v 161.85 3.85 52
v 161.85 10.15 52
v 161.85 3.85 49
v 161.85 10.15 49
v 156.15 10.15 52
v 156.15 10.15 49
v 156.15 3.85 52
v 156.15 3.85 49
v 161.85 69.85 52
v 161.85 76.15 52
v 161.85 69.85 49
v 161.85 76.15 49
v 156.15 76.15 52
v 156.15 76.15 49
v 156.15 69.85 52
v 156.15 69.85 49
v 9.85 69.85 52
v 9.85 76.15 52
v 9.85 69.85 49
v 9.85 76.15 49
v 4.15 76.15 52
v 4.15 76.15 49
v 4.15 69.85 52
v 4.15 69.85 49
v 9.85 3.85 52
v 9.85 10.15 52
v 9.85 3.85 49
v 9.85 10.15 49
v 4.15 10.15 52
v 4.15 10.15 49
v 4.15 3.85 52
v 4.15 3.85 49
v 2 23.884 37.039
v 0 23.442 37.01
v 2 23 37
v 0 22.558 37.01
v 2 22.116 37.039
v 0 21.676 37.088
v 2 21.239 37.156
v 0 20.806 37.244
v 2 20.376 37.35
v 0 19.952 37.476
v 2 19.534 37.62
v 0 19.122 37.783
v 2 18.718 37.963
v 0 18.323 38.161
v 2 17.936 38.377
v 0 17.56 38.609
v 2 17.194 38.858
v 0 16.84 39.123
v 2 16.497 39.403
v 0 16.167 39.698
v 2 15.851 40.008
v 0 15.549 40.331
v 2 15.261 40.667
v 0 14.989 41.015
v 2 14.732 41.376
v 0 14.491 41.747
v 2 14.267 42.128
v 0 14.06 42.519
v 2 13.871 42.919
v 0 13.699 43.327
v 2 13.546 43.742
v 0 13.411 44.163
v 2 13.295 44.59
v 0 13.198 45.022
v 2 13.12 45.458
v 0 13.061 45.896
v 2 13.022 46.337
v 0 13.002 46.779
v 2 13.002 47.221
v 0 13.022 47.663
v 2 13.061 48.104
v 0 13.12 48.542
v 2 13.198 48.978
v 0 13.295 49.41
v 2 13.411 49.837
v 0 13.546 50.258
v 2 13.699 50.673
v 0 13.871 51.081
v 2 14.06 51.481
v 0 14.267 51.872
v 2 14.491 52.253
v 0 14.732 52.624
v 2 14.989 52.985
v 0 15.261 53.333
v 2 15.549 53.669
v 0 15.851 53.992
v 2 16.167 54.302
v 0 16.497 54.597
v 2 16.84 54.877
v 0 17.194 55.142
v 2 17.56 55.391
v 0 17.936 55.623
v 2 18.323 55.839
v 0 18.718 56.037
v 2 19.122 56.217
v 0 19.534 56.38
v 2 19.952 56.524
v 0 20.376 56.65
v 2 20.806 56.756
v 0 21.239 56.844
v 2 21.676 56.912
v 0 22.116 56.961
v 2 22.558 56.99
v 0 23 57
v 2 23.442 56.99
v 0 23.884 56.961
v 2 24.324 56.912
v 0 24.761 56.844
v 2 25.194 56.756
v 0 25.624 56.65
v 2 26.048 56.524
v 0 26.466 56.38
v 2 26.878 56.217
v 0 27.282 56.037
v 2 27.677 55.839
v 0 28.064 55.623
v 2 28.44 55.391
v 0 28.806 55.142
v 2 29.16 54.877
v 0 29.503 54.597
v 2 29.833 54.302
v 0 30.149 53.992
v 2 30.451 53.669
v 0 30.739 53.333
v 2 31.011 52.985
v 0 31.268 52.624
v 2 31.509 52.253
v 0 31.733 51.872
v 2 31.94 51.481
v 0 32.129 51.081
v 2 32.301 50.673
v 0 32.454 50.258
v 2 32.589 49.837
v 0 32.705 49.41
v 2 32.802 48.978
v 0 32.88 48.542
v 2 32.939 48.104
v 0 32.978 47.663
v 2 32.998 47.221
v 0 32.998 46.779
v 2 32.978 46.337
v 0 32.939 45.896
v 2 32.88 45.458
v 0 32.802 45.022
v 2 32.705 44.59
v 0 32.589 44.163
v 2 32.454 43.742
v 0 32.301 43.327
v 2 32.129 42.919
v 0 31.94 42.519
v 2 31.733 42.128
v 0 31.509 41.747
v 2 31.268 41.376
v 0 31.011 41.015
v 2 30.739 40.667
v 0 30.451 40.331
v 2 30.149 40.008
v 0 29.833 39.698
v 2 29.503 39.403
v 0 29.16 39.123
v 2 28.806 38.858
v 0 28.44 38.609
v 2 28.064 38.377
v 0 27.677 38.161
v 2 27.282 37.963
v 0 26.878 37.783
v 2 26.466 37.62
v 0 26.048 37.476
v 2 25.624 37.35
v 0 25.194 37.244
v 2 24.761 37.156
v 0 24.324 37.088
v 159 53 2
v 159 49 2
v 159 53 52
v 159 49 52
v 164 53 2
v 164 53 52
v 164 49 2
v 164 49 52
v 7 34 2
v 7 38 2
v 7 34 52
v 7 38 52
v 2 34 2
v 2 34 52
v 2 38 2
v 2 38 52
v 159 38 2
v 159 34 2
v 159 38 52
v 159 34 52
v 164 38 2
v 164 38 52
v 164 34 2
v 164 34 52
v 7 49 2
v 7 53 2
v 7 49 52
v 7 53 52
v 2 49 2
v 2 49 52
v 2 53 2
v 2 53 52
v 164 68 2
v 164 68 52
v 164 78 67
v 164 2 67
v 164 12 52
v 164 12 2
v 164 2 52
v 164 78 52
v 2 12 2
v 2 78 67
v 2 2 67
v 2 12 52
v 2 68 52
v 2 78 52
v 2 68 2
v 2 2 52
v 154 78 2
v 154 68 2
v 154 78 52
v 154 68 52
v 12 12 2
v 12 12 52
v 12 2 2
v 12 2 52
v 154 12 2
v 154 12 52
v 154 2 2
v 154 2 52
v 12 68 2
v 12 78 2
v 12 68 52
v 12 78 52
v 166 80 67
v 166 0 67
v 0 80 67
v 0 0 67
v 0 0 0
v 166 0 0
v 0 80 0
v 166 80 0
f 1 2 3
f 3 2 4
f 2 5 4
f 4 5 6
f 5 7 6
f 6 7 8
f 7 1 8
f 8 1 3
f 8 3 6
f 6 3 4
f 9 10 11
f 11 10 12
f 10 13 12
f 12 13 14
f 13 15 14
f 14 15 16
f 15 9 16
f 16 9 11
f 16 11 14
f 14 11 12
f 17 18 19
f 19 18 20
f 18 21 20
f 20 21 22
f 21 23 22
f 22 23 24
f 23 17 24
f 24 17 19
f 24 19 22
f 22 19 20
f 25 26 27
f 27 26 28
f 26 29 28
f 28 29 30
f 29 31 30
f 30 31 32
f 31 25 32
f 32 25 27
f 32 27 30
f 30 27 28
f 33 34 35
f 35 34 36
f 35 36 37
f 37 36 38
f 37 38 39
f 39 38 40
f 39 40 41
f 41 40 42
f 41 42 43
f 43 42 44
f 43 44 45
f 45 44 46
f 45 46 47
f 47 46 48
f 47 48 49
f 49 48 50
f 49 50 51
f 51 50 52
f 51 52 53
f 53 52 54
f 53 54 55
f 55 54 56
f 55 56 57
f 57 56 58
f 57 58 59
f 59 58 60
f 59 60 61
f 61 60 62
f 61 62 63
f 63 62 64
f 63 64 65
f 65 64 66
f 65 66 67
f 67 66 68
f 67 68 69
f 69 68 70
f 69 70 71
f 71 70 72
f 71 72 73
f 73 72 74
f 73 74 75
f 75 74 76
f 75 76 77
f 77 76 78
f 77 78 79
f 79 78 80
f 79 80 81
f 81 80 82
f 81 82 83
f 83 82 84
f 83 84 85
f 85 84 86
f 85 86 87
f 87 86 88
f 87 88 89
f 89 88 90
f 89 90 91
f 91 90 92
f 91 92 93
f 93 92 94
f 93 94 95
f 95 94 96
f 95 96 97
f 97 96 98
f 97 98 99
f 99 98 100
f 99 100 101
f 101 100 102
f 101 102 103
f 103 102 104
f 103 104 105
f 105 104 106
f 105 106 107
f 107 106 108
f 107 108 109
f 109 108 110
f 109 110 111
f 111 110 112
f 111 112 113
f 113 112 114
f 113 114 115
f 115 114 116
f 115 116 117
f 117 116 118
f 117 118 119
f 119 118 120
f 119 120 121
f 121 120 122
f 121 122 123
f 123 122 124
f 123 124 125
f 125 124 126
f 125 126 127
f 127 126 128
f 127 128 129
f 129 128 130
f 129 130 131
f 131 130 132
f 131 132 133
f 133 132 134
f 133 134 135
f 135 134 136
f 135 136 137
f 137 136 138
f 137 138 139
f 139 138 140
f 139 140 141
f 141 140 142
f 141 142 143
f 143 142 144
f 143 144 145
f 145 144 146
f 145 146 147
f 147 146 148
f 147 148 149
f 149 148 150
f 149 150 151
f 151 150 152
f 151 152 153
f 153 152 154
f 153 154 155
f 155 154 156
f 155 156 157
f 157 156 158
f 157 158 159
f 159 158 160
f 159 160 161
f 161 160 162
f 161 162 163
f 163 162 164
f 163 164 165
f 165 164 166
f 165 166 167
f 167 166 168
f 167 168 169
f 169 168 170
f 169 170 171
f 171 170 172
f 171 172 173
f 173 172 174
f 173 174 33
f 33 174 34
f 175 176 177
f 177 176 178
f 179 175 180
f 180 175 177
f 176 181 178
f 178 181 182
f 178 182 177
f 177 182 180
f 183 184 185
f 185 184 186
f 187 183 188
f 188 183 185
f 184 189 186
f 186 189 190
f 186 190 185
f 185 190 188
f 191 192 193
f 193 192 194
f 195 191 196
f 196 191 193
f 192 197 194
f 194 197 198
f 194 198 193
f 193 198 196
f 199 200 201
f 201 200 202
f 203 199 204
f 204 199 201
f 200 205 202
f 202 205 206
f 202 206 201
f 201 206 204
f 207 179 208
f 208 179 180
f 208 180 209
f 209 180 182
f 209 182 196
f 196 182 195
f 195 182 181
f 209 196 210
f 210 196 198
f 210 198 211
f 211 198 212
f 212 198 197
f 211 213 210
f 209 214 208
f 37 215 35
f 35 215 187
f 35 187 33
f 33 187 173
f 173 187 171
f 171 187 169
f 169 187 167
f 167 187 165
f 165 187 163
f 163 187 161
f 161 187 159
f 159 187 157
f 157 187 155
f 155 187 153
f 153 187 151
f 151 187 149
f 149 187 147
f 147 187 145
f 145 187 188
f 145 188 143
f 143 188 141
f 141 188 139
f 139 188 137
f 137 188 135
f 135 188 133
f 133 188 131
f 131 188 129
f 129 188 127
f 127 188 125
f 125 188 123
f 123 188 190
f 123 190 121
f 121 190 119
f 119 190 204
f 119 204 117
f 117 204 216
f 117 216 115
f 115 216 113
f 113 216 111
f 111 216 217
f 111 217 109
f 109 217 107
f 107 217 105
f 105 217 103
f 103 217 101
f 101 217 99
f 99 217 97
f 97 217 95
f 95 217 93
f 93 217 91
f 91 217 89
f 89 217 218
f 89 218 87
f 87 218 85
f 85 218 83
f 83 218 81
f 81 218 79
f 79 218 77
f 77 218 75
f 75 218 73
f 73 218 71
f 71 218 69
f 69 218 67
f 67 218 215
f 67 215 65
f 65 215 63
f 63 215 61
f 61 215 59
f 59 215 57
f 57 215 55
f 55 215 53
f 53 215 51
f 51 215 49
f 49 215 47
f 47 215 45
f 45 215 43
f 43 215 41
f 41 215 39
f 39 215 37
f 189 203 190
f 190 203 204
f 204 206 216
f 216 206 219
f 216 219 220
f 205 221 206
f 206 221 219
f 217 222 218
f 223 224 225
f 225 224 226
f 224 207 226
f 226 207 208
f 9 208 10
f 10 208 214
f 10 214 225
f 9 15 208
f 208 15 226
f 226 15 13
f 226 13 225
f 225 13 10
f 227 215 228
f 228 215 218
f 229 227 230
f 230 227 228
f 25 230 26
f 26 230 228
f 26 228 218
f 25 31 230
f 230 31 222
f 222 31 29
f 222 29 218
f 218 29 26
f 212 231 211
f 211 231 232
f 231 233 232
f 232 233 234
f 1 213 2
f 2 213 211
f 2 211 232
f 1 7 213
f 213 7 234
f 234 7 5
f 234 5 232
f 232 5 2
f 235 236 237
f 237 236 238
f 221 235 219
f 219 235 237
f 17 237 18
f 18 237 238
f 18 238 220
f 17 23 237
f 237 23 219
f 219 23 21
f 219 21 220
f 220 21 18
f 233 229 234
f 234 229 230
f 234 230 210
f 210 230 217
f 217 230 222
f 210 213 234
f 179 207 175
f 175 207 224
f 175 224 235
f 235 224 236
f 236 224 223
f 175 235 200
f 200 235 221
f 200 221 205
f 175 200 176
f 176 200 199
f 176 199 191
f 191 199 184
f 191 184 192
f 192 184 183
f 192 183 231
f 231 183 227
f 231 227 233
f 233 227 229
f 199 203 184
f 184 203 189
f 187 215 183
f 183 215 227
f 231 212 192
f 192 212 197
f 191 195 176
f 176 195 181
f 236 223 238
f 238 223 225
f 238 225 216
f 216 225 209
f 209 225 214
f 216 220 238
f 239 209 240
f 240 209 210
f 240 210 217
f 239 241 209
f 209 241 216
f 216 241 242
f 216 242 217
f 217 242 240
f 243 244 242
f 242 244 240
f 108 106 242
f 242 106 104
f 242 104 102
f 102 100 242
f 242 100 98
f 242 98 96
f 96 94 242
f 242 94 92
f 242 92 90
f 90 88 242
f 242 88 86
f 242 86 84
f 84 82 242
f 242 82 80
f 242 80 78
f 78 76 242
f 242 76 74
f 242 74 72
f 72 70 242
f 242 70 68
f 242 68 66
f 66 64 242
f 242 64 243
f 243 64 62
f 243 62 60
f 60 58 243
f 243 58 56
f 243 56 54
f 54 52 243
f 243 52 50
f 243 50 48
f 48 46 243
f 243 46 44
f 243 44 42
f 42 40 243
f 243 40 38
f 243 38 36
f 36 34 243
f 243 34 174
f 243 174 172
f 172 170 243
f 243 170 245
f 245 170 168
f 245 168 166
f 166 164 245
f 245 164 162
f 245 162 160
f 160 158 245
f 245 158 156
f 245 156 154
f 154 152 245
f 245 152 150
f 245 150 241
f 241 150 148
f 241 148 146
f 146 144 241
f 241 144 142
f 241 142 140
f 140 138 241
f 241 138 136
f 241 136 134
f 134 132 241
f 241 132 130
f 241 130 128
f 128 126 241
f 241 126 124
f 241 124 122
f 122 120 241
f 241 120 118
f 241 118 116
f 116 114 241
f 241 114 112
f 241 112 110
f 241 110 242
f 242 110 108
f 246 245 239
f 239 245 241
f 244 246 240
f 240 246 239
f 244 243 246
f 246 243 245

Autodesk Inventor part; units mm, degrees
ref_plane "YZ Plane" through (0, 0, 0) normal (1, 0, 0) x (0, 1, 0)
ref_plane "XZ Plane" through (0, 0, 0) normal (0, 1, 0) x (-1, 0, 0)
ref_plane "XY Plane" through (0, 0, 0) normal (0, 0, 1) x (1, 0, 0)
sketch "Skizze1" plane through (0, 0, 0) normal (0, 0, 1) x (1, 0, 0)
  line L0 (0, 0) -> (166, 0)
  line L1 (166, 0) -> (166, 80)
  line L2 (166, 80) -> (0, 80)
  line L3 (0, 80) -> (0, 0)
  dimension "d0" = 80
  dimension "d1" = 166
extrude "Extrusion1" add sketch "Skizze1" along normal blind 2
sketch "Skizze2" plane through (0, 0, 2) normal (0, 0, 1) x (1, 0, 0)
  line L0 (0, 80) -> (0, 0) projected
  line L1 (166, 0) -> (166, 80) projected
  line L2 (0, 0) -> (166, 0)
  line L3 (166, 0) -> (166, 80)
  line L4 (166, 80) -> (0, 80)
  line L5 (0, 80) -> (0, 0)
  line L6 (2, 78) -> (164, 78)
  line L7 (164, 78) -> (164, 2)
  line L8 (164, 2) -> (2, 2)
  line L9 (2, 2) -> (2, 78)
  dimension "d4" = 2
  dimension "d6" = 2
  dimension "d7" = 2
  dimension "d8" = 2
extrude "Extrusion2" add sketch "Skizze2" along normal blind 65
sketch "Skizze4" plane through (0, 0, 2) normal (0, 0, 1) x (1, 0, 0)
  line L0 (2, 2) -> (2, 78) projected
  line L1 (164, 2) -> (2, 2) projected
  line L2 (2, 78) -> (164, 78)
  line L3 (164, 78) -> (164, 2)
  line L4 (164, 2) -> (2, 2)
  line L5 (2, 2) -> (2, 78)
  line L6 (2, 68) -> (12, 68)
  line L7 (12, 68) -> (12, 78)
  line L8 (12, 78) -> (2, 78)
  line L9 (2, 78) -> (2, 68)
  line L10 (2, 2) -> (12, 2)
  line L11 (12, 2) -> (12, 12)
  line L12 (12, 12) -> (2, 12)
  line L13 (2, 12) -> (2, 2)
  line L14 (164, 78) -> (164, 2) projected
  line L15 (2, 78) -> (164, 78) projected
  line L16 (164, 68) -> (154, 68)
  line L17 (154, 68) -> (154, 78)
  line L18 (154, 78) -> (164, 78)
  line L19 (164, 78) -> (164, 68)
  line L20 (164, 2) -> (154, 2)
  line L21 (154, 2) -> (154, 12)
  line L22 (154, 12) -> (164, 12)
  line L23 (164, 12) -> (164, 2)
  point P0 (0, 0)
  point P1 (164, 12)
  point P2 (12, 2)
  point P3 (2, 68)
  dimension "d20" = 10
  dimension "d21" = 10
  dimension "d22" = 10
  dimension "d23" = 10
  dimension "d41" = 10
  dimension "d55" = 10
extrude "Extrusion3" add sketch "Skizze4" along normal blind 50 contours L0 L12 L11 L1 | L0 L2 L7 L6 | L21 L22 L3 L1 | L2 L3 L16 L17
sketch "Skizze5" plane through (0, 0, 2) normal (0, 0, 1) x (1, 0, 0)
  line L0 (2, 78) -> (164, 78) projected
  line L1 (2, 2) -> (2, 78) projected
  line L2 (2, 53) -> (7, 53)
  line L3 (7, 53) -> (7, 49)
  line L4 (7, 49) -> (2, 49)
  line L5 (2, 49) -> (2, 53)
  line L6 (2, 38) -> (7, 38)
  line L7 (7, 38) -> (7, 34)
  line L8 (7, 34) -> (2, 34)
  line L9 (2, 34) -> (2, 38)
  line L10 (164, 49) -> (159, 49)
  line L11 (159, 49) -> (159, 53)
  line L12 (159, 53) -> (164, 53)
  line L13 (164, 53) -> (164, 49)
  line L14 (164, 78) -> (164, 2) projected
  line L15 (164, 34) -> (159, 34)
  line L16 (159, 34) -> (159, 38)
  line L17 (159, 38) -> (164, 38)
  line L18 (164, 38) -> (164, 34)
  point P0 (0, 0)
  point P1 (2, 34)
  point P2 (2, 49)
  dimension "d30" = 11
  dimension "d31" = 4
  dimension "d32" = 4
  dimension "d33" = 5
  dimension "d34" = 25
  dimension "d37" = 5
  dimension "d38" = 0
  dimension "d58" = 25
  dimension "d59" = 4
  dimension "d60" = 11
extrude "Extrusion4" add sketch "Skizze5" along normal blind 50
sketch "Skizze3" plane through (0, 0, 0) normal (-1, 0, 0) x (0, 0, 1)
  line L0 (0, 80) -> (67, 80) projected
  line L1 (52, 12) -> (2, 12) projected
  line L2 (2, 34) -> (52, 34) projected
  line L3 (2, 34) -> (2, 12) projected
  point P0 (0, 0)
  point P1 (47, 23)
  point P2 (67, 12)
  point P3 (67, 34)
  dimension "d52" = 11
  dimension "d53" = 11
  dimension "d54" = 45
hole "Bohrung1" at (0, 23, 47) direction (1, 0, 0) diameter 20 depth 8 tip angle 118
sketch "Skizze6" plane through (0, 0, 52) normal (0, 0, 1) x (1, 0, 0)
  line L0 (4.15, 76.15) -> (9.85, 76.15)
  line L1 (9.85, 76.15) -> (9.85, 69.85)
  line L2 (9.85, 69.85) -> (4.15, 69.85)
  line L3 (4.15, 69.85) -> (4.15, 76.15)
  line L4 (2, 2) -> (2, 78) projected
  line L5 (2, 68) -> (12, 68) projected
  line L6 (4.15, 10.15) -> (9.85, 10.15)
  line L7 (9.85, 10.15) -> (9.85, 3.85)
  line L8 (9.85, 3.85) -> (4.15, 3.85)
  line L9 (4.15, 3.85) -> (4.15, 10.15)
  line L10 (12, 12) -> (2, 12) projected
  line L11 (156.15, 76.15) -> (161.85, 76.15)
  line L12 (161.85, 76.15) -> (161.85, 69.85)
  line L13 (161.85, 69.85) -> (156.15, 69.85)
  line L14 (156.15, 69.85) -> (156.15, 76.15)
  line L15 (154, 78) -> (154, 68) projected
  line L16 (156.15, 10.15) -> (161.85, 10.15)
  line L17 (161.85, 10.15) -> (161.85, 3.85)
  line L18 (161.85, 3.85) -> (156.15, 3.85)
  line L19 (156.15, 3.85) -> (156.15, 10.15)
  line L20 (2, 78) -> (164, 78) projected
  point P0 (0, 0)
  dimension "d42" = 5.7
  dimension "d43" = 6.3
  dimension "d44" = 2.15
  dimension "d45" = 1.85
  dimension "d46" = 6.3
  dimension "d47" = 1.85
  dimension "d48" = 5.7
  dimension "d49" = 2.15
  dimension "d56" = 1.85
  dimension "d57" = 6.3
extrude "Extrusion5" cut sketch "Skizze6" against normal blind 3
properties part number "TimBoden"
